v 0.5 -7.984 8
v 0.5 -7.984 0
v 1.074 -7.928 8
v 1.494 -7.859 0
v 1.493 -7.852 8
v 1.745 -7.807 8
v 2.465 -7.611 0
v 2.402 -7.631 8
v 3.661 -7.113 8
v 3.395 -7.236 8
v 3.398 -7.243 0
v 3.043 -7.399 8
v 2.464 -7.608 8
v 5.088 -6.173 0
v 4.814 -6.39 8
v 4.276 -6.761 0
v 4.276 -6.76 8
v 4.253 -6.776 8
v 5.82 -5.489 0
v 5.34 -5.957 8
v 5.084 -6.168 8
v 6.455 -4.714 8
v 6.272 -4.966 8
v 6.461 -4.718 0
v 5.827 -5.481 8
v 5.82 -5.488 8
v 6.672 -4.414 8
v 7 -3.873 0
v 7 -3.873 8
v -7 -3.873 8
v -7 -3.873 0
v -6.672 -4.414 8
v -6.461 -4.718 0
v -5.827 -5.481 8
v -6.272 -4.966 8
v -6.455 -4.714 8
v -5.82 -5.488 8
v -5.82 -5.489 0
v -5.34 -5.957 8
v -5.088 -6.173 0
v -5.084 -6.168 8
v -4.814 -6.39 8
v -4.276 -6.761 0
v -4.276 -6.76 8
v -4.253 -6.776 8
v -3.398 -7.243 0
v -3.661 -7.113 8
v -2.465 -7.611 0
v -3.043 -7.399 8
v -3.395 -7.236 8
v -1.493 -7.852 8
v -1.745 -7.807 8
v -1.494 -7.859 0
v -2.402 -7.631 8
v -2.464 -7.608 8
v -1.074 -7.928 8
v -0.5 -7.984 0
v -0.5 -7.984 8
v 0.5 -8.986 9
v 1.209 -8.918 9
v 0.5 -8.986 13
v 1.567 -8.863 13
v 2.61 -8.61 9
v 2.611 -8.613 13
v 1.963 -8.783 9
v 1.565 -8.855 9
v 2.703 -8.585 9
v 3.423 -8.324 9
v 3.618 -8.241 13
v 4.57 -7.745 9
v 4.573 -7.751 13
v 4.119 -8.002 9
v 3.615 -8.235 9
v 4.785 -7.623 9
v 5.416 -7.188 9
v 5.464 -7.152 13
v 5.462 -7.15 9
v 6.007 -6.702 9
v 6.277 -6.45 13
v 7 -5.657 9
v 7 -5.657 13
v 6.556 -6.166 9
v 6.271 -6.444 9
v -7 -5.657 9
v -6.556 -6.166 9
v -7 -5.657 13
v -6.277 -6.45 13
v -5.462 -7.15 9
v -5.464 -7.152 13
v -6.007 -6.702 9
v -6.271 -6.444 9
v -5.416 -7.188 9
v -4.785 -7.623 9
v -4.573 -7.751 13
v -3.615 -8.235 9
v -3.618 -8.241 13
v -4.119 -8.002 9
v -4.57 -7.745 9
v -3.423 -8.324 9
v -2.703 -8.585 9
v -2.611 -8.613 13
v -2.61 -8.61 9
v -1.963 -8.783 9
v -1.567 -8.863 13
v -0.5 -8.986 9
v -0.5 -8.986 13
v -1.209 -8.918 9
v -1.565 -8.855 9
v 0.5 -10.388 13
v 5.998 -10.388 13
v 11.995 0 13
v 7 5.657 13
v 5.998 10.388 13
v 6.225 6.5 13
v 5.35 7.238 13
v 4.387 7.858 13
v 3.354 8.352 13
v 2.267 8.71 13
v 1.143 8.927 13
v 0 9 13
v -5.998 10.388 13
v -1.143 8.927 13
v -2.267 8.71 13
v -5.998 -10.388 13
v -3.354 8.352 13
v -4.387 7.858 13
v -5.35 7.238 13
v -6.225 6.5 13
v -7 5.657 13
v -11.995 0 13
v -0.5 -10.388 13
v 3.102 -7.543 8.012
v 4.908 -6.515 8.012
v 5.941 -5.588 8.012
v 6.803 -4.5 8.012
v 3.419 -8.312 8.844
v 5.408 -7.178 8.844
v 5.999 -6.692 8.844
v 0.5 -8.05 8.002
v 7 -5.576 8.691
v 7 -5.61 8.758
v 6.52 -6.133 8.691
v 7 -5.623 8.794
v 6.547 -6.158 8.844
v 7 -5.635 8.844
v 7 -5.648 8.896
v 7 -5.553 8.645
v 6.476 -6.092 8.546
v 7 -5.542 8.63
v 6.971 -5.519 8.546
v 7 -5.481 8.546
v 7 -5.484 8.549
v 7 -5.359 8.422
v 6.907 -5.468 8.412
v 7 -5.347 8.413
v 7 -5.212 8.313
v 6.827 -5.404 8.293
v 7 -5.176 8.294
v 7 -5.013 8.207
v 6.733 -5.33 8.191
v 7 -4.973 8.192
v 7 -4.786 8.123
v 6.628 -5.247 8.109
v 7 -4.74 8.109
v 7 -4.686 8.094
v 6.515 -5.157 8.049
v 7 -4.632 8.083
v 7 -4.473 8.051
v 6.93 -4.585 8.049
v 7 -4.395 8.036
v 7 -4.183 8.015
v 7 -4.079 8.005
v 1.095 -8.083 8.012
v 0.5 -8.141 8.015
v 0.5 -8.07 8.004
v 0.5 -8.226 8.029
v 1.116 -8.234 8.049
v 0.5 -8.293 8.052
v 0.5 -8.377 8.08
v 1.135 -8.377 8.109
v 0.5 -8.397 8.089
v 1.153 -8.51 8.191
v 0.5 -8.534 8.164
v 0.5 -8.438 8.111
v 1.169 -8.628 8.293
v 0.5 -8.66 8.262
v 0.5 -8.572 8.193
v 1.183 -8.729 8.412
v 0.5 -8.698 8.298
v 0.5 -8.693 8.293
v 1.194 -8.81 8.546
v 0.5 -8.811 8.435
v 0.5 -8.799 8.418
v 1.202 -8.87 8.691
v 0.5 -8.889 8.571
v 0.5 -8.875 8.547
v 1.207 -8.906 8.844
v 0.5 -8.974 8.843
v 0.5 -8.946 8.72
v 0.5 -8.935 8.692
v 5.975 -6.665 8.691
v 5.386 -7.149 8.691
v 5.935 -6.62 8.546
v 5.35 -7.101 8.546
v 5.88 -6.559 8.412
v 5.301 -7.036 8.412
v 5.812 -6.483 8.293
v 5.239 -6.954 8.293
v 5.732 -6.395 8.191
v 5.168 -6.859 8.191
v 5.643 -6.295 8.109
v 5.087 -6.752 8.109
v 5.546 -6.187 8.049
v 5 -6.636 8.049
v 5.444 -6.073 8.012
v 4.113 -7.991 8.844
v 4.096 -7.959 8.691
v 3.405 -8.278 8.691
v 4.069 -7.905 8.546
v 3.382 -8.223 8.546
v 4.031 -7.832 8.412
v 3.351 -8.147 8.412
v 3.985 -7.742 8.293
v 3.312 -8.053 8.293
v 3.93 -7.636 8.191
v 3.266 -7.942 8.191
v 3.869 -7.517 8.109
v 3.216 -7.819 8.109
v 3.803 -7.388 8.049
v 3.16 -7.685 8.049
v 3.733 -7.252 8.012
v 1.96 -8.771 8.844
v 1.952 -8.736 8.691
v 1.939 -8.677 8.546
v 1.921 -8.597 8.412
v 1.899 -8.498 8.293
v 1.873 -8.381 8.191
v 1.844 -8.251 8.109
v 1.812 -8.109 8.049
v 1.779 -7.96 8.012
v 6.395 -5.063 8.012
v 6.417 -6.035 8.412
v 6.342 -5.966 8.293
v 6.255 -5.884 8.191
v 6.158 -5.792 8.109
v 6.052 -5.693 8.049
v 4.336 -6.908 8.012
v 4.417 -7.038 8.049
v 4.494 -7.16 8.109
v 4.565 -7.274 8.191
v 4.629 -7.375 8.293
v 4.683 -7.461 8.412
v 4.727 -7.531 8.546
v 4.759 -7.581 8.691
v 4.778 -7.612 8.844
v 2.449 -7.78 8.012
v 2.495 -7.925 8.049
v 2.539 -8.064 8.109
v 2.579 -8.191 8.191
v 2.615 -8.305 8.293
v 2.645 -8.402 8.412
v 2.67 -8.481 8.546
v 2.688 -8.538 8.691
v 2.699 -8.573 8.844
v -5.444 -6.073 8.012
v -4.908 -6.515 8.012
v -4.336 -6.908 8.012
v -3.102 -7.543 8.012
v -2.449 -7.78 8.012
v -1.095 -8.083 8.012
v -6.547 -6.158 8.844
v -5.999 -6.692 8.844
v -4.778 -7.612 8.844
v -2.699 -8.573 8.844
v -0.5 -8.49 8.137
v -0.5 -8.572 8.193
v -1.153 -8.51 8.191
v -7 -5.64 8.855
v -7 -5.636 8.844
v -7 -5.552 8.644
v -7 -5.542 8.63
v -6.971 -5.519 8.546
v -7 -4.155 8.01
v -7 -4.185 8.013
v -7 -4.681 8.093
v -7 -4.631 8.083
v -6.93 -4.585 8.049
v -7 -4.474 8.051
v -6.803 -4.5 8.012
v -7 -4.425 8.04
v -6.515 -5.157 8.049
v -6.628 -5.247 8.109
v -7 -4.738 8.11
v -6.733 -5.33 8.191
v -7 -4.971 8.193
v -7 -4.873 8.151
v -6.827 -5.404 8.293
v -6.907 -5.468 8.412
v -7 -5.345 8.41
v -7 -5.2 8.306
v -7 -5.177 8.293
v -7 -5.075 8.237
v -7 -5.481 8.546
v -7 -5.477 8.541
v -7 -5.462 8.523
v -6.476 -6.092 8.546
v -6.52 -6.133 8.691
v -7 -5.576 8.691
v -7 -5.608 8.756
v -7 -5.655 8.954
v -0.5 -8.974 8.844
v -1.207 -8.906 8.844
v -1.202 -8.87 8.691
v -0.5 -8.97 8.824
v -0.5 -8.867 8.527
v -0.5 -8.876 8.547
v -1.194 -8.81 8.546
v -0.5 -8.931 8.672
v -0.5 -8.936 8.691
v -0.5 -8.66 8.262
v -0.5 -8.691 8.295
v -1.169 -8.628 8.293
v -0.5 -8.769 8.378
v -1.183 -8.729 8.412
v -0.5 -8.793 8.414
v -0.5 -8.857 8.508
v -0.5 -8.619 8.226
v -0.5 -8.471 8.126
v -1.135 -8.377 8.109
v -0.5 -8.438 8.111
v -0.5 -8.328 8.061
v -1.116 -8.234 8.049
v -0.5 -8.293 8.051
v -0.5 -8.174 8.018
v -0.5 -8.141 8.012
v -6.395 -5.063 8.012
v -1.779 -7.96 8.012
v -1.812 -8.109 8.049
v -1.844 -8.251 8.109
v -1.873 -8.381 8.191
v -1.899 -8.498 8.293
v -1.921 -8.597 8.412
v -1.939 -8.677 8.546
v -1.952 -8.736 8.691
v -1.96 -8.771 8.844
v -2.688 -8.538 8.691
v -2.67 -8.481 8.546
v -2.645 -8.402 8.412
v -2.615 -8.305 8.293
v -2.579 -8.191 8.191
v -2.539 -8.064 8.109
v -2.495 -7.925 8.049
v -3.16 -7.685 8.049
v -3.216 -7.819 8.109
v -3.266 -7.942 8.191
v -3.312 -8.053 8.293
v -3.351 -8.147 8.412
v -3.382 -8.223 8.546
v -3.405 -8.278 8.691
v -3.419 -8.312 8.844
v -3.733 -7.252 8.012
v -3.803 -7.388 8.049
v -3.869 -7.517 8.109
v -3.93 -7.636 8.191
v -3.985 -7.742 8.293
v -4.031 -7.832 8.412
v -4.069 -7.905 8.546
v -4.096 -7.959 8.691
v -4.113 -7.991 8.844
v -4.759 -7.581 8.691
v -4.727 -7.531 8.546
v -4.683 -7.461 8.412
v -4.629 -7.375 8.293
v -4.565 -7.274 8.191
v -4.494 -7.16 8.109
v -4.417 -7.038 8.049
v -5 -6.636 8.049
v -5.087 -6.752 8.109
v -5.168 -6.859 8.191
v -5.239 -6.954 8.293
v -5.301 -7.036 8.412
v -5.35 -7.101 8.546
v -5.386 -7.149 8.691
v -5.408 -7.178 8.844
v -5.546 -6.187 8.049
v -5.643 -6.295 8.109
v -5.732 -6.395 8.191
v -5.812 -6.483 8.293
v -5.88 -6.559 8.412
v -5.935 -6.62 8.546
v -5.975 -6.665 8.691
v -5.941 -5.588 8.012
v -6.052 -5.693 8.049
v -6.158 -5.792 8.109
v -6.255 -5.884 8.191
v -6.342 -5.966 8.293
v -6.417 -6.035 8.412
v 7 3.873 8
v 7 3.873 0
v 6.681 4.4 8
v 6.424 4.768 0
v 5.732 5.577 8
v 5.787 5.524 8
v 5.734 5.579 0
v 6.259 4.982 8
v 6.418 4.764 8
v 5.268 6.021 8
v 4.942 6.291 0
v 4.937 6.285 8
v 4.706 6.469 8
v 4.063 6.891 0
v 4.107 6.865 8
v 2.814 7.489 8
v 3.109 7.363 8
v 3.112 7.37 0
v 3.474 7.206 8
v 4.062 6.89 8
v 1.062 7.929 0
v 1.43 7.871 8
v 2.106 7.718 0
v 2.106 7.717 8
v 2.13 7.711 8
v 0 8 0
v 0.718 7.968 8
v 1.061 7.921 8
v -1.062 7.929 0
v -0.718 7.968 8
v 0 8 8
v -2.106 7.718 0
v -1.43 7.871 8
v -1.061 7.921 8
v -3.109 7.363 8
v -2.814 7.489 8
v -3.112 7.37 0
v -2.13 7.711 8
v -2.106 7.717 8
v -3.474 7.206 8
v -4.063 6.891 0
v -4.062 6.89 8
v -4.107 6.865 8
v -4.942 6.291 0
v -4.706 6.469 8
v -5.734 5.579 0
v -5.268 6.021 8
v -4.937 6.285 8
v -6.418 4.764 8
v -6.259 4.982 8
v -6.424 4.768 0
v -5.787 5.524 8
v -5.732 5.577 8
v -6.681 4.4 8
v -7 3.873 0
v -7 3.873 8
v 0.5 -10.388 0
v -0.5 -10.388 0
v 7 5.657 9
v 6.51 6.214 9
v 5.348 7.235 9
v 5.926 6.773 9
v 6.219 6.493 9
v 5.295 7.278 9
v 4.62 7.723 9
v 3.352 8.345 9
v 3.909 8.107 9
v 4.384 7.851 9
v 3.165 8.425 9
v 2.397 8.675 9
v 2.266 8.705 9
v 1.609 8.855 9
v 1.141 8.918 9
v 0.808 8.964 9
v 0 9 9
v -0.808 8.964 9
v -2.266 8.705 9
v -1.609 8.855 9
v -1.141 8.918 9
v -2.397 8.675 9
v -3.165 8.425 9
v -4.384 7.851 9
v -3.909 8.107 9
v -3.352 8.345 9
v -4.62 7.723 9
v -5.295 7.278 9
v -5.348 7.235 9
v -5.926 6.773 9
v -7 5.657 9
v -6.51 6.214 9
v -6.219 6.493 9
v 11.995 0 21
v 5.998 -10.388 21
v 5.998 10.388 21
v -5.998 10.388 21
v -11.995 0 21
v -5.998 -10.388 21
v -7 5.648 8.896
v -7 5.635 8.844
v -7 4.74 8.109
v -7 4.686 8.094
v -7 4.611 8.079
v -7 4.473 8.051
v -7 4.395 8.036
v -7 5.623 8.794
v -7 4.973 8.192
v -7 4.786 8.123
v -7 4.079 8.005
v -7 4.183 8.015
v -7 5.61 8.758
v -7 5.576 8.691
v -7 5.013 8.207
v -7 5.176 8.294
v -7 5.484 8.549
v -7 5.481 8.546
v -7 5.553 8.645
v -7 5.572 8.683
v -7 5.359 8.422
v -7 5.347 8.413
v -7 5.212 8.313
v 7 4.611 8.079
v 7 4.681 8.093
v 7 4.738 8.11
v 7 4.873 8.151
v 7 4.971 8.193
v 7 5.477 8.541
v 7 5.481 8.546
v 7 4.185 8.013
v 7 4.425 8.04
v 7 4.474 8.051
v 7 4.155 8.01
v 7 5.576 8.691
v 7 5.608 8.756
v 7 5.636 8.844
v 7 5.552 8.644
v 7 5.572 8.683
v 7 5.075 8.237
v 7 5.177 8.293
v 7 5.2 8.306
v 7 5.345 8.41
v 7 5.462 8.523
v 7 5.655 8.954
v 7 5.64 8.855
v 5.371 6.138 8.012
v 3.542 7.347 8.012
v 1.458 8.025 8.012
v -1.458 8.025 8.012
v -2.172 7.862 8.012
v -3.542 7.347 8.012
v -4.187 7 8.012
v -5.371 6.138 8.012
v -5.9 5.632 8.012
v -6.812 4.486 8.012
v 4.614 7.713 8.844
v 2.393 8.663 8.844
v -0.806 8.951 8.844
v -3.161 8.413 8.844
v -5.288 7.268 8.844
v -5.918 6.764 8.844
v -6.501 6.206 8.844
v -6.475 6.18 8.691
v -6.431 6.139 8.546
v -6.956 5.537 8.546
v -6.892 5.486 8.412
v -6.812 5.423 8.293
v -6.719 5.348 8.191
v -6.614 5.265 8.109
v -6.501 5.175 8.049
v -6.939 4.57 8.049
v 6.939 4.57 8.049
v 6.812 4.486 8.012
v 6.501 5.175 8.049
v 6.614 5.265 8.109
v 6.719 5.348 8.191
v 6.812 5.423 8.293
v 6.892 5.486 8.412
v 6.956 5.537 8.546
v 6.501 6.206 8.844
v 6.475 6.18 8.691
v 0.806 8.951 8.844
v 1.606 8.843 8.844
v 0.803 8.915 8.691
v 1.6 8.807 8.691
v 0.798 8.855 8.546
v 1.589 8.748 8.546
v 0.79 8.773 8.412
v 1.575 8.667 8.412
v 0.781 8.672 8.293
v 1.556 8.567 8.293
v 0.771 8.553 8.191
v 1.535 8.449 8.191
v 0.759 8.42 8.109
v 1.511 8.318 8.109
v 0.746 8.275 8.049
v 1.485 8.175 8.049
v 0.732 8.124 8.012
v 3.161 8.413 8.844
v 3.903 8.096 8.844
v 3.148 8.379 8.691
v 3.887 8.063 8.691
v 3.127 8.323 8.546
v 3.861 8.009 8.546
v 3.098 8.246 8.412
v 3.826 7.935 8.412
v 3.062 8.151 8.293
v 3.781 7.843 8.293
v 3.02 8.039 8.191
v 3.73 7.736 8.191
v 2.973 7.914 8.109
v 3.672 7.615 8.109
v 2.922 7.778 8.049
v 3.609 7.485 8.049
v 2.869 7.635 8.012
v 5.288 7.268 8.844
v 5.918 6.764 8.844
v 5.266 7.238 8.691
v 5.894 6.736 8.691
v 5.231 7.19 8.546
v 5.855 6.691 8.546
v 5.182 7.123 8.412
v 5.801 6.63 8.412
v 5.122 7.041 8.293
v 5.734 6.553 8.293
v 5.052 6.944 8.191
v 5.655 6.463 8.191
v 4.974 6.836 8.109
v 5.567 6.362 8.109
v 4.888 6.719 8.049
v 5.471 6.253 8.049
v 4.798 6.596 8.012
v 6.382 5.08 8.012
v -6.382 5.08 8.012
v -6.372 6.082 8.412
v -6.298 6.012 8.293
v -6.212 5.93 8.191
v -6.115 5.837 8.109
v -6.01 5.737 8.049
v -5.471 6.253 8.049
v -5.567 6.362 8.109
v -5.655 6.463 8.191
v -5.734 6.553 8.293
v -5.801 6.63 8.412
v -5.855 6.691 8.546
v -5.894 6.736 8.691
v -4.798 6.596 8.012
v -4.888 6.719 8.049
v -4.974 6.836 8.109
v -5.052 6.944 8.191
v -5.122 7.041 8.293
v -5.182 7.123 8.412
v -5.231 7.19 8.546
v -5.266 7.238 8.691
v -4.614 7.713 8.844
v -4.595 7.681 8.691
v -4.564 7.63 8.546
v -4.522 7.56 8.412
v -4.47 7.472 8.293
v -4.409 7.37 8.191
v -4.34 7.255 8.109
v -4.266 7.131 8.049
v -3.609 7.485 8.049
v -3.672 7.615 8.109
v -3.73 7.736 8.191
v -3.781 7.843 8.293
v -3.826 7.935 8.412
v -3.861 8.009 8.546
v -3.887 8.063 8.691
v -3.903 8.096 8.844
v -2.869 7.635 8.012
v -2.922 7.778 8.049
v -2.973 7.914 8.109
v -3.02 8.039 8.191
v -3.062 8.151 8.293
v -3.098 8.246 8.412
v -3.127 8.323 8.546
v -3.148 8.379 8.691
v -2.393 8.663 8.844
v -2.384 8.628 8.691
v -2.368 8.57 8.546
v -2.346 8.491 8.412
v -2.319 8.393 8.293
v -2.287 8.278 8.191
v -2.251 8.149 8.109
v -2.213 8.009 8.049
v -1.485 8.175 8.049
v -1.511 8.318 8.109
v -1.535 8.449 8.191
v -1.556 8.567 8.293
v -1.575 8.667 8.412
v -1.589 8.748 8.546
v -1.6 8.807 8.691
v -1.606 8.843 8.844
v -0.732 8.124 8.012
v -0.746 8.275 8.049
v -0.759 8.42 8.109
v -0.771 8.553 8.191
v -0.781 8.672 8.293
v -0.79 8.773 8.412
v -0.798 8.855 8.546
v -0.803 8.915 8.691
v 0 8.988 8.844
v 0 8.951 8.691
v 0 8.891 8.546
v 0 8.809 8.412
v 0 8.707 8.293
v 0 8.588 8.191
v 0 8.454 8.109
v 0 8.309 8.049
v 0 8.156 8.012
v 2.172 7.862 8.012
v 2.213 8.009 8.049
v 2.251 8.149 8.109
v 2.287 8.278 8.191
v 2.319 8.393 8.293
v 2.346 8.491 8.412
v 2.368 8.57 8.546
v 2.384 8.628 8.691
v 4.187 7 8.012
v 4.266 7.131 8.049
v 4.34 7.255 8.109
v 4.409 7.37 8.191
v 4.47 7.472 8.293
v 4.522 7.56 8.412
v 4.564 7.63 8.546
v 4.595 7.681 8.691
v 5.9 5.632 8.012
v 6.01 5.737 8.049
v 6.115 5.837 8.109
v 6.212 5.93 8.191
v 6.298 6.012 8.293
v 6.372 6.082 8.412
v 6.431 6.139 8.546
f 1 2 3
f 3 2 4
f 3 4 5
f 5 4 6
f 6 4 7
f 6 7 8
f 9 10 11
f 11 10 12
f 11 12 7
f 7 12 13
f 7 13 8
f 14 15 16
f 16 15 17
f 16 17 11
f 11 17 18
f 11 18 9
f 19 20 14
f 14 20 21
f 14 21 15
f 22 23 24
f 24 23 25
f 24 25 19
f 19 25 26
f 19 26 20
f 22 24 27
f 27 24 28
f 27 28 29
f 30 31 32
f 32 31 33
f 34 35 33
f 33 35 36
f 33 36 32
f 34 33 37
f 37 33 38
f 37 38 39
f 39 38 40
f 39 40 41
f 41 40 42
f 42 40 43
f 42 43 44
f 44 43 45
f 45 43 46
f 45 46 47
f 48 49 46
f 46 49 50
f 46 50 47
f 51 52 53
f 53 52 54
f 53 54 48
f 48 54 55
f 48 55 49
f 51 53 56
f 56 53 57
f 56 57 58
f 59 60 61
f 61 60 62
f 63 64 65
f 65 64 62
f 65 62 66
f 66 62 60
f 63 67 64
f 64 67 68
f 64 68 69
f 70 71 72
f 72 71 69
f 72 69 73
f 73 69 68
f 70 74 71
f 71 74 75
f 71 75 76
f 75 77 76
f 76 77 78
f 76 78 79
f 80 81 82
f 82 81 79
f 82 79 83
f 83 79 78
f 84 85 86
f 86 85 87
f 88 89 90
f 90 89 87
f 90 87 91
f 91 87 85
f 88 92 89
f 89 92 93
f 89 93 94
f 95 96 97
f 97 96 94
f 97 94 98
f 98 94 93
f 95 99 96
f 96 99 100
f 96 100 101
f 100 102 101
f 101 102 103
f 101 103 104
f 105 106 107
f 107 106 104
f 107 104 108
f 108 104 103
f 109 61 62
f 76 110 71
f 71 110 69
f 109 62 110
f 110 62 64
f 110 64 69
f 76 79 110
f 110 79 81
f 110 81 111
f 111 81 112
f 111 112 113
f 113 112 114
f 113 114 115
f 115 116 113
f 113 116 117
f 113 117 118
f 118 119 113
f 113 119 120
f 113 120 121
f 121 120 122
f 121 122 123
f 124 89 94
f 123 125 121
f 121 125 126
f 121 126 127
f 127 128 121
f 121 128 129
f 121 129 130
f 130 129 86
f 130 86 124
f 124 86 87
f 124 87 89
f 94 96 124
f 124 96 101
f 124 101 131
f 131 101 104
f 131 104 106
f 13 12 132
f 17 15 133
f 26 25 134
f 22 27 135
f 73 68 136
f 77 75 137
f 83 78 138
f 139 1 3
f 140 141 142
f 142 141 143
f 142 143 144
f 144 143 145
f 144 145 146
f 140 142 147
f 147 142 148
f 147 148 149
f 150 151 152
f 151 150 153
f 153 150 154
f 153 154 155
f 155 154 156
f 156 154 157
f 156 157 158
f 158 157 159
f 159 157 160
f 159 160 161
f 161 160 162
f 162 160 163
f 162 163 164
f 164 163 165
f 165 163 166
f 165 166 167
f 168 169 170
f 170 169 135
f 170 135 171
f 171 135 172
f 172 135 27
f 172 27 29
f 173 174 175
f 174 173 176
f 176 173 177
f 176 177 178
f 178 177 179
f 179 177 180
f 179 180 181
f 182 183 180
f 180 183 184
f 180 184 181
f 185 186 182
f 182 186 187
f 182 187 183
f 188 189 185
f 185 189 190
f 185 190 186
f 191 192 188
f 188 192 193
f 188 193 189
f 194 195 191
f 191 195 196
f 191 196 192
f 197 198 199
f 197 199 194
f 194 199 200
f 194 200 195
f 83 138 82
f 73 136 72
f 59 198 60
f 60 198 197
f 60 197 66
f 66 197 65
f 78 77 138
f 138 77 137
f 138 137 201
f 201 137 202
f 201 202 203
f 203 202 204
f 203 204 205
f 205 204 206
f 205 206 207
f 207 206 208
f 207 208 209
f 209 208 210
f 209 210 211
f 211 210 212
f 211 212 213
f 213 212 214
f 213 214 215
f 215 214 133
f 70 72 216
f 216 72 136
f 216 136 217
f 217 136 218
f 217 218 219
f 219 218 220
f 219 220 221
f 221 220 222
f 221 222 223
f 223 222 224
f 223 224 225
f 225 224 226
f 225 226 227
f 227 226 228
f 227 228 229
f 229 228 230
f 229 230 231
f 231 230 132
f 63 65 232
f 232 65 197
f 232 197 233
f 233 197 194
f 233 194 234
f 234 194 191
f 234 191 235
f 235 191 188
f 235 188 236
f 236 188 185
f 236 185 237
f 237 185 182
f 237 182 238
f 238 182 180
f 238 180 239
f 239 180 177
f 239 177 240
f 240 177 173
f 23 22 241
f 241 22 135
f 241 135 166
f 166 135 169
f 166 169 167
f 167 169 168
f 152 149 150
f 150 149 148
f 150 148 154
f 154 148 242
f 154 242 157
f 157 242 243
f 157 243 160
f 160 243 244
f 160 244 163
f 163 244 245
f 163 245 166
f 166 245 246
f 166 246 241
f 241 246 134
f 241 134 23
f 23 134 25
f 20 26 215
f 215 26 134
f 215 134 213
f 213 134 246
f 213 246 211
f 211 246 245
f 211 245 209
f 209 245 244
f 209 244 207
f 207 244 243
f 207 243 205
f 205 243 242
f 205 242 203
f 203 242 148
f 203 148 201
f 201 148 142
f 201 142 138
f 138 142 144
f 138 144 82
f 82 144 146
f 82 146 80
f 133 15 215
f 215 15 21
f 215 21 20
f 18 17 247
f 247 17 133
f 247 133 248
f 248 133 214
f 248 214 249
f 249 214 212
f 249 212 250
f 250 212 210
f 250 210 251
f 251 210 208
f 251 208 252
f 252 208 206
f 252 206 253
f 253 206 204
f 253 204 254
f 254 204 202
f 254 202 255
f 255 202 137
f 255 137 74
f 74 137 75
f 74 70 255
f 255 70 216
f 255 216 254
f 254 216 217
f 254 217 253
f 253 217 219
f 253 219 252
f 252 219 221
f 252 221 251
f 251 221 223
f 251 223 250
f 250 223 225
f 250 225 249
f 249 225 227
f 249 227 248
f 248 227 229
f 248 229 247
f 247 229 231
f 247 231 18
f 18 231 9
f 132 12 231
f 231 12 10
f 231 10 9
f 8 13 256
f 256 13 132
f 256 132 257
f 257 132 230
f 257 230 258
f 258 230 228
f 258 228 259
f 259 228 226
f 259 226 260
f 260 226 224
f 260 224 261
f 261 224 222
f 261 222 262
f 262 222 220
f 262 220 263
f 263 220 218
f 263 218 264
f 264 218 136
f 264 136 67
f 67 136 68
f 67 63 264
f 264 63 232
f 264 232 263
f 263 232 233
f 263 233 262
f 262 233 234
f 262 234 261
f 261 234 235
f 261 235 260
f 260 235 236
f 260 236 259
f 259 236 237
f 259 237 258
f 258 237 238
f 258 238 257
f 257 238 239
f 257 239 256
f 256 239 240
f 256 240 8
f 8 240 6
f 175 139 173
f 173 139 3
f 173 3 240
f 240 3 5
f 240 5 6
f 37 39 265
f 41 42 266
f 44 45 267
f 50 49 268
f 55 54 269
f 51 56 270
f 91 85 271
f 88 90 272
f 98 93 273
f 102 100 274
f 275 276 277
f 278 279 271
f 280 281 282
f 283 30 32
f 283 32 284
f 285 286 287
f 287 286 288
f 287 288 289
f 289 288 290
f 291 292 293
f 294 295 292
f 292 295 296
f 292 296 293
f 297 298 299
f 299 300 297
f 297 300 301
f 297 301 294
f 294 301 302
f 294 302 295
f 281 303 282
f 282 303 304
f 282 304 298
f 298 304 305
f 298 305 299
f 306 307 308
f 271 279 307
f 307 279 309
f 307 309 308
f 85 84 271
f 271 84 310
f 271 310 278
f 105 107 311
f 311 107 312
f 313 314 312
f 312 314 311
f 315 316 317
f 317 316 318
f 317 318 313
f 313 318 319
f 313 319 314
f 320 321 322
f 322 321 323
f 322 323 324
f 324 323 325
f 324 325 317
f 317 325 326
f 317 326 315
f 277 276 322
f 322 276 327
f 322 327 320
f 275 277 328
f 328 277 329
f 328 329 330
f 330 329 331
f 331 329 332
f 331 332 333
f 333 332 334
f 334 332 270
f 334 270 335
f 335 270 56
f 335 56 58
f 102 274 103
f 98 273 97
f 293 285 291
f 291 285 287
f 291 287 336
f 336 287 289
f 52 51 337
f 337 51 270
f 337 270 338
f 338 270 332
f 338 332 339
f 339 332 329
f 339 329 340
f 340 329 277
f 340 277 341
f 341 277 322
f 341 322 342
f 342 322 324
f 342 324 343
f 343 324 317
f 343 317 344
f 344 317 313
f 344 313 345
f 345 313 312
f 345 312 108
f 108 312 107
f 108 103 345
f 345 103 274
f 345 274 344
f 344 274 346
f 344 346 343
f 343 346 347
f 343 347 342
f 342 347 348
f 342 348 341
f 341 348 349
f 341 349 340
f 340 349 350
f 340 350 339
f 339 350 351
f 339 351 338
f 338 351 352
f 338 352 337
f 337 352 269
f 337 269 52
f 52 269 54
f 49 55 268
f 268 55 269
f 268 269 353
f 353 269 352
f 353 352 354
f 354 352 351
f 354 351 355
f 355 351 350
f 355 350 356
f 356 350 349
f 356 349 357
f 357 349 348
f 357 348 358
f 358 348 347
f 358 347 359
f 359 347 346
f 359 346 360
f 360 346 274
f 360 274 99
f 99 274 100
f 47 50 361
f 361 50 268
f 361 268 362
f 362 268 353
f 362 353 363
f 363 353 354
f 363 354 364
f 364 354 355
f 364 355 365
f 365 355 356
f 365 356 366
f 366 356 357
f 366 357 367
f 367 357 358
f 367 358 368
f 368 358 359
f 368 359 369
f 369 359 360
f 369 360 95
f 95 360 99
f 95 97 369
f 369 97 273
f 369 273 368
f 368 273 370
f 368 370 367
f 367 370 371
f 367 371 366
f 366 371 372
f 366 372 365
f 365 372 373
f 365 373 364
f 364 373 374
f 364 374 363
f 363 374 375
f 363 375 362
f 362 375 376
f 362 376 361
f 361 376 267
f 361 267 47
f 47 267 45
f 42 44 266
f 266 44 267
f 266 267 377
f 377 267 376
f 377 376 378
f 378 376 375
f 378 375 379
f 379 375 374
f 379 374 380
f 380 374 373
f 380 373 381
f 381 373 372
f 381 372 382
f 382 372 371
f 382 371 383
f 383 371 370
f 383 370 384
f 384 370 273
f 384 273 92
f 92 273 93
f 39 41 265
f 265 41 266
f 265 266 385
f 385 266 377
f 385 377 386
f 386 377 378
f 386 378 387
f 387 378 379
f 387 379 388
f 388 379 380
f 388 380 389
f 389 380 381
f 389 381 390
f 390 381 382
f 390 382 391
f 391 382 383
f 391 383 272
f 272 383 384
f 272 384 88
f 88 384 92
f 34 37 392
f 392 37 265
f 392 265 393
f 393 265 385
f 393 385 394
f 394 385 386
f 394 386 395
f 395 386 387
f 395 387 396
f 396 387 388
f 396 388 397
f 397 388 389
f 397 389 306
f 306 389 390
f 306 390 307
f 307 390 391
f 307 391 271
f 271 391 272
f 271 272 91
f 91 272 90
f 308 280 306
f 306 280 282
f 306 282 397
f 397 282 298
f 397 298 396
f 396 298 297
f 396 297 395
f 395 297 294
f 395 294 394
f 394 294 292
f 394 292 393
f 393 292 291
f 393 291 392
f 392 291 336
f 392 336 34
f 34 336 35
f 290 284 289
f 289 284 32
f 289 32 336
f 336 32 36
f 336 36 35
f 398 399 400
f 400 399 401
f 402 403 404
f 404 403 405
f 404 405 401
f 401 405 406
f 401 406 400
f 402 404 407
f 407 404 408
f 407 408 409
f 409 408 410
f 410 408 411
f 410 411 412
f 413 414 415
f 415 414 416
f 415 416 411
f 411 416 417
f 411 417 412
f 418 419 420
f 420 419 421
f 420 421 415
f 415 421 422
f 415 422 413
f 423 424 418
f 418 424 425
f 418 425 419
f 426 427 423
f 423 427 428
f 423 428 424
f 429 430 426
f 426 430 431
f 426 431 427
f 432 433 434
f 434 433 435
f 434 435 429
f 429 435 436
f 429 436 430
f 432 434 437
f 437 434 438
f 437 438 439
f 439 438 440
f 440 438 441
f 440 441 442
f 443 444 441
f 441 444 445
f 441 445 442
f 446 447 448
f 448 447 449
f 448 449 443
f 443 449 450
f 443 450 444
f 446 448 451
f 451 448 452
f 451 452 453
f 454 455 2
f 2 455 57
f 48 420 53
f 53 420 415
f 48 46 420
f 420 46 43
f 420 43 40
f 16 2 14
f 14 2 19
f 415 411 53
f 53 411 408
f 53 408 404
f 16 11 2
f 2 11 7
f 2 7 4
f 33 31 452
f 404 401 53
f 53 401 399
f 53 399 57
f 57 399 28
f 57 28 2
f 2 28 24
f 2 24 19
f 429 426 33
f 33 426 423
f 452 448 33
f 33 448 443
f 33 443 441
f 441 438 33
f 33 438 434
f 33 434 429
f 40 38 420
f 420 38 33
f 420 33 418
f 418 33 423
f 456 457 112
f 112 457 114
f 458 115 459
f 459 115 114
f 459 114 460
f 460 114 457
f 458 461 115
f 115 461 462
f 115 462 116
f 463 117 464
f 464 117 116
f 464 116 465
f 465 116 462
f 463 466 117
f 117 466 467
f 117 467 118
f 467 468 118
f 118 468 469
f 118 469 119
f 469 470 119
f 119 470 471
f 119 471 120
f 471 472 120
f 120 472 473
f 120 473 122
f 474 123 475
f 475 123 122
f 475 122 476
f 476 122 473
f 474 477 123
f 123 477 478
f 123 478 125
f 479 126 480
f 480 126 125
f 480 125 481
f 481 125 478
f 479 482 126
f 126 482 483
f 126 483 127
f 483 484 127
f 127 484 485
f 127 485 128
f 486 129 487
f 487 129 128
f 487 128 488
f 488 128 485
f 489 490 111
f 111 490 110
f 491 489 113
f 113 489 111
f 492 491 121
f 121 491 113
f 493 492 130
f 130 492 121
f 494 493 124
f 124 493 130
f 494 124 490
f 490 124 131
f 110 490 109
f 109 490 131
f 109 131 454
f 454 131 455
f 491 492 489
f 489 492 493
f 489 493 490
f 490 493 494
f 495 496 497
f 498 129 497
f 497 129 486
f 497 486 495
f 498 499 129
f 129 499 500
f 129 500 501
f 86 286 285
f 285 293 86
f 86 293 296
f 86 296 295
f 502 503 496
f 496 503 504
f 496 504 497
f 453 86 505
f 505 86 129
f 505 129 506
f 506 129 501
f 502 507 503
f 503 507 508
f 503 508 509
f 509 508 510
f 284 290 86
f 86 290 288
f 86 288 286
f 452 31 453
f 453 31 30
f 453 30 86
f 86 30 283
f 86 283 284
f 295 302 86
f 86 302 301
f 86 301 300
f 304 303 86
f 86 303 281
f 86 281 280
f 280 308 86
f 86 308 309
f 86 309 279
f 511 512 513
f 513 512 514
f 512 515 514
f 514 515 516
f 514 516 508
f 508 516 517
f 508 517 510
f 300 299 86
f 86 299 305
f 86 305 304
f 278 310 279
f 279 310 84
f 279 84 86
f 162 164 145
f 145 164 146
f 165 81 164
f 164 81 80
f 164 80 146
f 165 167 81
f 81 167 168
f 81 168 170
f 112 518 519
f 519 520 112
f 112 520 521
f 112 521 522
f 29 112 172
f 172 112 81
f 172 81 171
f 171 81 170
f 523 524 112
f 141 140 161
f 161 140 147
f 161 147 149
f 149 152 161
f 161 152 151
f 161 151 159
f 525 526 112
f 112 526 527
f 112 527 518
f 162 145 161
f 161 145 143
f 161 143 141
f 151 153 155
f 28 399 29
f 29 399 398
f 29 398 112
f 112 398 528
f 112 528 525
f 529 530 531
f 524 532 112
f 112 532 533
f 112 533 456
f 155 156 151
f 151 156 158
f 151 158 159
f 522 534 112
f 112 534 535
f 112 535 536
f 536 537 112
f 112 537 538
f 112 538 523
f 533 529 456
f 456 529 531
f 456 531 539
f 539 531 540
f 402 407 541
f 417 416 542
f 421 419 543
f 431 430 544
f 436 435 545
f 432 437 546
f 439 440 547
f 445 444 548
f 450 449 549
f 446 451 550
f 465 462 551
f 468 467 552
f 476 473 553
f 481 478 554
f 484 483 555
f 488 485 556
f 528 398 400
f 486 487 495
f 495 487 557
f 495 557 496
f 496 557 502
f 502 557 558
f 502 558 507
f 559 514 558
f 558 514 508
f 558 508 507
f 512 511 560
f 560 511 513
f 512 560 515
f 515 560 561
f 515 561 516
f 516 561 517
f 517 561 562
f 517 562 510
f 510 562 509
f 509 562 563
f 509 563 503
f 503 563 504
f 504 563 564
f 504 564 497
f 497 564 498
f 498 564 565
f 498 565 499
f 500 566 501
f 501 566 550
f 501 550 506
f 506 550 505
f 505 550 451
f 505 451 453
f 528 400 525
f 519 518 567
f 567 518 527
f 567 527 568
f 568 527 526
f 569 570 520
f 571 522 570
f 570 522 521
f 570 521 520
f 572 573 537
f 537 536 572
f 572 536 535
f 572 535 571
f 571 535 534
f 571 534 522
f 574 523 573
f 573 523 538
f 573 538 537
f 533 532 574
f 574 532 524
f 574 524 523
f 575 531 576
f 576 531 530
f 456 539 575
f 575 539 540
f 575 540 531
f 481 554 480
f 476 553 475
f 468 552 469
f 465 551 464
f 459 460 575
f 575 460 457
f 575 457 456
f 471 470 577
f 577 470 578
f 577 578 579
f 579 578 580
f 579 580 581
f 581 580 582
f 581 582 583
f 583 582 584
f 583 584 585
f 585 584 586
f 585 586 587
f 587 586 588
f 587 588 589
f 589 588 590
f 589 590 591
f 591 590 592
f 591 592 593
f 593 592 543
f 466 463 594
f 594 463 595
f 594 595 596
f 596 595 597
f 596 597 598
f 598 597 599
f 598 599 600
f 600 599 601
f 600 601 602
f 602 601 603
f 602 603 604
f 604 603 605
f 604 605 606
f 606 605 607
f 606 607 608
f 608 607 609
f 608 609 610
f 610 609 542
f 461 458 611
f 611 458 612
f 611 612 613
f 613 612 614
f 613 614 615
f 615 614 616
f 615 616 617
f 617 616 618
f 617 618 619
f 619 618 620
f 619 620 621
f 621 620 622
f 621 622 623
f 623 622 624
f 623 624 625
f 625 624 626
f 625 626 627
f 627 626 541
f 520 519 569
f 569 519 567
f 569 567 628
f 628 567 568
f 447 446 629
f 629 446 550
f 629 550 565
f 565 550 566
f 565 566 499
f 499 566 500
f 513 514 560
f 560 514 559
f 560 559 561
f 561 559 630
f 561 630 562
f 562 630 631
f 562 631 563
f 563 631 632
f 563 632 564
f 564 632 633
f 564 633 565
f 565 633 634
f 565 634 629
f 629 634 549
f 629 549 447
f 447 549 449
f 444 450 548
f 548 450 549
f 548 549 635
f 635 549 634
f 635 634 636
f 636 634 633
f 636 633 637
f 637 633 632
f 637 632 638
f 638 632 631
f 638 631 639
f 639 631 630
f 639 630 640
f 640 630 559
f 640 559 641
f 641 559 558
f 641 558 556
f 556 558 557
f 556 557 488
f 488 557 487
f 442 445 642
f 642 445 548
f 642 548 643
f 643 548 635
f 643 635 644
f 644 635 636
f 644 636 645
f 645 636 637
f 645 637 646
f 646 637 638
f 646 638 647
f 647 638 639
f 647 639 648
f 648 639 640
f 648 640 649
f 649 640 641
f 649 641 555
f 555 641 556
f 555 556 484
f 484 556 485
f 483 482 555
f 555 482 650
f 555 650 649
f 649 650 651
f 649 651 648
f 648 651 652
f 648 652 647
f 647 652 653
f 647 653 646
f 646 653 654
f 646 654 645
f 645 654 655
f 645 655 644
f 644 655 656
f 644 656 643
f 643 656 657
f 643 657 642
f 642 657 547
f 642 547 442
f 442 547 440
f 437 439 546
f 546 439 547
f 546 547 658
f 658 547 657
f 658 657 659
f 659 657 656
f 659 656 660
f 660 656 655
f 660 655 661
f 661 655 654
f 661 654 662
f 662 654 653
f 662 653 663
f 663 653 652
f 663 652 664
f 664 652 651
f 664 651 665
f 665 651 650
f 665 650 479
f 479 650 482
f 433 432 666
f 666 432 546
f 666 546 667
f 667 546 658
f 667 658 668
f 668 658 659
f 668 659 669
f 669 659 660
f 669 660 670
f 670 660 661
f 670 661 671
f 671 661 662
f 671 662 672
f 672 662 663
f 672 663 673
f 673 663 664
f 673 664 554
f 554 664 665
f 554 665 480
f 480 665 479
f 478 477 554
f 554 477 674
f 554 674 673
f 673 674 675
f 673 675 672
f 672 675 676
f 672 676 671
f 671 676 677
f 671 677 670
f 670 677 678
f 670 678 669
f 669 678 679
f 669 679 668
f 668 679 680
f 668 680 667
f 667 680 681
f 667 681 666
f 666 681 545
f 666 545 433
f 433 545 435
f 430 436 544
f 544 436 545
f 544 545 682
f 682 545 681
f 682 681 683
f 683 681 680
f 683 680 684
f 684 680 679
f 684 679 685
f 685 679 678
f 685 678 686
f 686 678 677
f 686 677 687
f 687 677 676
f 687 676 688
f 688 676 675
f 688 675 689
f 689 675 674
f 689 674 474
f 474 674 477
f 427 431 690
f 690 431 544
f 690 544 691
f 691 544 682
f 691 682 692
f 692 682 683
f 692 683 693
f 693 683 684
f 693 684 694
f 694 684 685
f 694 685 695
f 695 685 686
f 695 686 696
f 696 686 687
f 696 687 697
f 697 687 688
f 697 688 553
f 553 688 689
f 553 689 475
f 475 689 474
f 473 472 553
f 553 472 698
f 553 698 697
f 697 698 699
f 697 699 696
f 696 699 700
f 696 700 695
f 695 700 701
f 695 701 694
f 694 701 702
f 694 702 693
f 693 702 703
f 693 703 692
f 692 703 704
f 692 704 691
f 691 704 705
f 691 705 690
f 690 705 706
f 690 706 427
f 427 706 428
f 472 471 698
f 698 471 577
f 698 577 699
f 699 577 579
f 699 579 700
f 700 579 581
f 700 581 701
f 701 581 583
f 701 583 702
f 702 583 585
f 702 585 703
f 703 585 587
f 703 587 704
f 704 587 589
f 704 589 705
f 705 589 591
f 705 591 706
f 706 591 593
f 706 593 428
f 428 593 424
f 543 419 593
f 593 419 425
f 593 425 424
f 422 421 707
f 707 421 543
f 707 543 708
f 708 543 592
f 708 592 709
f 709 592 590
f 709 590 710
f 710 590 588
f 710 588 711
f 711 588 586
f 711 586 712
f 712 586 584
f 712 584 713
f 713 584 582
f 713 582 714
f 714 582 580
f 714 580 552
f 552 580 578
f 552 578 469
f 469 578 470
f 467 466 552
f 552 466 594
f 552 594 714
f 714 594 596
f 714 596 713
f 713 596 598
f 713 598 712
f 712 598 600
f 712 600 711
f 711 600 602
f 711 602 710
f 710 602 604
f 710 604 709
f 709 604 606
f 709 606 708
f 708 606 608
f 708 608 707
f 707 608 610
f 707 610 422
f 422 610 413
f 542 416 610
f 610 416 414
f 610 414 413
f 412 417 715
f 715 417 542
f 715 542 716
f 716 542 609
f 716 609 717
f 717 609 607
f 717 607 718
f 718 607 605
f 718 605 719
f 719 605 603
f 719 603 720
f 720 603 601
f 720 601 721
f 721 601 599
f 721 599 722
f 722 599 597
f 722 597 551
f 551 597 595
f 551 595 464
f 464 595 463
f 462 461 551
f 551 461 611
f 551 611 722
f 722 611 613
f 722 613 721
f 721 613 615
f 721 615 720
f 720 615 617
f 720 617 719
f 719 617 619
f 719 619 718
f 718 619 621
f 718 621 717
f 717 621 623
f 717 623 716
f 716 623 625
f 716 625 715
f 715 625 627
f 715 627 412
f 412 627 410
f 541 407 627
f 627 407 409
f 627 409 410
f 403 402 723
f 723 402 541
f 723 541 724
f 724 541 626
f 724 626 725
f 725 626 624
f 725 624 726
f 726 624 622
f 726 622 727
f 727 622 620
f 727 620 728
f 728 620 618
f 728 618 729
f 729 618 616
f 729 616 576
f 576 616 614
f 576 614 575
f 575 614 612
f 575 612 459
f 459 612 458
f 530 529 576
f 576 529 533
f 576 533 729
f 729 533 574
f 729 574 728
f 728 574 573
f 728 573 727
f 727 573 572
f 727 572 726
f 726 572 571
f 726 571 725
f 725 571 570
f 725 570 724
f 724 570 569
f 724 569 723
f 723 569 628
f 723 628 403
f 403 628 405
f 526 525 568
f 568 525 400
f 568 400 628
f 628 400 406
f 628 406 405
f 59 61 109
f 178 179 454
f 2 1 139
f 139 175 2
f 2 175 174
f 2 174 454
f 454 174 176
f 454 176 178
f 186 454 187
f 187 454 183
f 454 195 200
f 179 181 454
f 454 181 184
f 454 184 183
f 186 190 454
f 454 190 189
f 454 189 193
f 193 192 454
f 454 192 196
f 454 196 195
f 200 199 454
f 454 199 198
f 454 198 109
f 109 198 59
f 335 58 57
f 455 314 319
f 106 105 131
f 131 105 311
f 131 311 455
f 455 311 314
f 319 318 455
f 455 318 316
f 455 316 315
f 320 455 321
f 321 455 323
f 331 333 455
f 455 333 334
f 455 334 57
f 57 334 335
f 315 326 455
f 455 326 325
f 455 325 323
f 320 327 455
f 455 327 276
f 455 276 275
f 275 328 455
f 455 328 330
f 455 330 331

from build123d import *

# Parameters (mm, degrees)
SKIZZE1_R                       = 8
AUFSATZ_LINEAR_AUSTRAGEN1_DEPTH = 8
SKIZZE2_R                       = 9
AUFSATZ_LINEAR_AUSTRAGEN2_DEPTH = 5
AUFSATZ_LINEAR_AUSTRAGEN3_DEPTH = 8
SKIZZE4_W                       = 3
SKIZZE4_H                       = 19.049807725
SCHNITT_LINEAR_AUSTRAGEN1_DEPTH = 13
VERRUNDUNG1_R                   = 1
SKIZZE5_W                       = 1
SKIZZE5_H                       = 3.315694734
AUFSATZ_LINEAR_AUSTRAGEN4_DEPTH = 13


with BuildPart() as part:
    # Skizze1 → Aufsatz-Linear austragen1 (new body)
    with BuildSketch(Plane.XY):
        Circle(SKIZZE1_R)
    extrude(amount=AUFSATZ_LINEAR_AUSTRAGEN1_DEPTH)

    # Skizze2 → Aufsatz-Linear austragen2 (add)
    with BuildSketch(Plane.XY.offset(8)):
        Circle(SKIZZE2_R)
    extrude(amount=AUFSATZ_LINEAR_AUSTRAGEN2_DEPTH)

    # Skizze3 → Aufsatz-Linear austragen3 (add)
    with BuildSketch(Plane.XY.offset(13)):
        Polygon((11.995271167, 0), (5.997635583, 10.388209556), (-5.997635583, 10.388209556), (-11.995271167, 0), (-5.997635583, -10.388209556), (5.997635583, -10.388209556), align=None)
    extrude(amount=AUFSATZ_LINEAR_AUSTRAGEN3_DEPTH)

    # Skizze4 → Schnitt-Linear austragen1 (cut)
    with BuildSketch(Plane(origin=(0, 0, 0), x_dir=(-1, 0, 0), z_dir=(0, 0, -1))):
        with Locations((-8.5, -0.043792661)):
            Rectangle(SKIZZE4_W, SKIZZE4_H)
        with Locations((8.5, -0.043792661)):
            Rectangle(SKIZZE4_W, SKIZZE4_H)
    extrude(amount=-SCHNITT_LINEAR_AUSTRAGEN1_DEPTH, mode=Mode.SUBTRACT)

    # Verrundung1
    verrundung1_edges = [part.edges().sort_by_distance(p)[0] for p in [
        (0, -9, 8),
        (0, 9, 8),
    ]]
    fillet(verrundung1_edges, radius=VERRUNDUNG1_R - 0.0001)  # a hair under: the kernel refuses the full size

    # Skizze5 → Aufsatz-Linear austragen4 (add)
    with BuildSketch(Plane(origin=(0, 0, 13), x_dir=(-1, 0, 0), z_dir=(0, 0, -1))):
        with Locations((0, -8.730362189)):
            Rectangle(SKIZZE5_W, SKIZZE5_H)
    extrude(amount=AUFSATZ_LINEAR_AUSTRAGEN4_DEPTH)


solid = part.part
